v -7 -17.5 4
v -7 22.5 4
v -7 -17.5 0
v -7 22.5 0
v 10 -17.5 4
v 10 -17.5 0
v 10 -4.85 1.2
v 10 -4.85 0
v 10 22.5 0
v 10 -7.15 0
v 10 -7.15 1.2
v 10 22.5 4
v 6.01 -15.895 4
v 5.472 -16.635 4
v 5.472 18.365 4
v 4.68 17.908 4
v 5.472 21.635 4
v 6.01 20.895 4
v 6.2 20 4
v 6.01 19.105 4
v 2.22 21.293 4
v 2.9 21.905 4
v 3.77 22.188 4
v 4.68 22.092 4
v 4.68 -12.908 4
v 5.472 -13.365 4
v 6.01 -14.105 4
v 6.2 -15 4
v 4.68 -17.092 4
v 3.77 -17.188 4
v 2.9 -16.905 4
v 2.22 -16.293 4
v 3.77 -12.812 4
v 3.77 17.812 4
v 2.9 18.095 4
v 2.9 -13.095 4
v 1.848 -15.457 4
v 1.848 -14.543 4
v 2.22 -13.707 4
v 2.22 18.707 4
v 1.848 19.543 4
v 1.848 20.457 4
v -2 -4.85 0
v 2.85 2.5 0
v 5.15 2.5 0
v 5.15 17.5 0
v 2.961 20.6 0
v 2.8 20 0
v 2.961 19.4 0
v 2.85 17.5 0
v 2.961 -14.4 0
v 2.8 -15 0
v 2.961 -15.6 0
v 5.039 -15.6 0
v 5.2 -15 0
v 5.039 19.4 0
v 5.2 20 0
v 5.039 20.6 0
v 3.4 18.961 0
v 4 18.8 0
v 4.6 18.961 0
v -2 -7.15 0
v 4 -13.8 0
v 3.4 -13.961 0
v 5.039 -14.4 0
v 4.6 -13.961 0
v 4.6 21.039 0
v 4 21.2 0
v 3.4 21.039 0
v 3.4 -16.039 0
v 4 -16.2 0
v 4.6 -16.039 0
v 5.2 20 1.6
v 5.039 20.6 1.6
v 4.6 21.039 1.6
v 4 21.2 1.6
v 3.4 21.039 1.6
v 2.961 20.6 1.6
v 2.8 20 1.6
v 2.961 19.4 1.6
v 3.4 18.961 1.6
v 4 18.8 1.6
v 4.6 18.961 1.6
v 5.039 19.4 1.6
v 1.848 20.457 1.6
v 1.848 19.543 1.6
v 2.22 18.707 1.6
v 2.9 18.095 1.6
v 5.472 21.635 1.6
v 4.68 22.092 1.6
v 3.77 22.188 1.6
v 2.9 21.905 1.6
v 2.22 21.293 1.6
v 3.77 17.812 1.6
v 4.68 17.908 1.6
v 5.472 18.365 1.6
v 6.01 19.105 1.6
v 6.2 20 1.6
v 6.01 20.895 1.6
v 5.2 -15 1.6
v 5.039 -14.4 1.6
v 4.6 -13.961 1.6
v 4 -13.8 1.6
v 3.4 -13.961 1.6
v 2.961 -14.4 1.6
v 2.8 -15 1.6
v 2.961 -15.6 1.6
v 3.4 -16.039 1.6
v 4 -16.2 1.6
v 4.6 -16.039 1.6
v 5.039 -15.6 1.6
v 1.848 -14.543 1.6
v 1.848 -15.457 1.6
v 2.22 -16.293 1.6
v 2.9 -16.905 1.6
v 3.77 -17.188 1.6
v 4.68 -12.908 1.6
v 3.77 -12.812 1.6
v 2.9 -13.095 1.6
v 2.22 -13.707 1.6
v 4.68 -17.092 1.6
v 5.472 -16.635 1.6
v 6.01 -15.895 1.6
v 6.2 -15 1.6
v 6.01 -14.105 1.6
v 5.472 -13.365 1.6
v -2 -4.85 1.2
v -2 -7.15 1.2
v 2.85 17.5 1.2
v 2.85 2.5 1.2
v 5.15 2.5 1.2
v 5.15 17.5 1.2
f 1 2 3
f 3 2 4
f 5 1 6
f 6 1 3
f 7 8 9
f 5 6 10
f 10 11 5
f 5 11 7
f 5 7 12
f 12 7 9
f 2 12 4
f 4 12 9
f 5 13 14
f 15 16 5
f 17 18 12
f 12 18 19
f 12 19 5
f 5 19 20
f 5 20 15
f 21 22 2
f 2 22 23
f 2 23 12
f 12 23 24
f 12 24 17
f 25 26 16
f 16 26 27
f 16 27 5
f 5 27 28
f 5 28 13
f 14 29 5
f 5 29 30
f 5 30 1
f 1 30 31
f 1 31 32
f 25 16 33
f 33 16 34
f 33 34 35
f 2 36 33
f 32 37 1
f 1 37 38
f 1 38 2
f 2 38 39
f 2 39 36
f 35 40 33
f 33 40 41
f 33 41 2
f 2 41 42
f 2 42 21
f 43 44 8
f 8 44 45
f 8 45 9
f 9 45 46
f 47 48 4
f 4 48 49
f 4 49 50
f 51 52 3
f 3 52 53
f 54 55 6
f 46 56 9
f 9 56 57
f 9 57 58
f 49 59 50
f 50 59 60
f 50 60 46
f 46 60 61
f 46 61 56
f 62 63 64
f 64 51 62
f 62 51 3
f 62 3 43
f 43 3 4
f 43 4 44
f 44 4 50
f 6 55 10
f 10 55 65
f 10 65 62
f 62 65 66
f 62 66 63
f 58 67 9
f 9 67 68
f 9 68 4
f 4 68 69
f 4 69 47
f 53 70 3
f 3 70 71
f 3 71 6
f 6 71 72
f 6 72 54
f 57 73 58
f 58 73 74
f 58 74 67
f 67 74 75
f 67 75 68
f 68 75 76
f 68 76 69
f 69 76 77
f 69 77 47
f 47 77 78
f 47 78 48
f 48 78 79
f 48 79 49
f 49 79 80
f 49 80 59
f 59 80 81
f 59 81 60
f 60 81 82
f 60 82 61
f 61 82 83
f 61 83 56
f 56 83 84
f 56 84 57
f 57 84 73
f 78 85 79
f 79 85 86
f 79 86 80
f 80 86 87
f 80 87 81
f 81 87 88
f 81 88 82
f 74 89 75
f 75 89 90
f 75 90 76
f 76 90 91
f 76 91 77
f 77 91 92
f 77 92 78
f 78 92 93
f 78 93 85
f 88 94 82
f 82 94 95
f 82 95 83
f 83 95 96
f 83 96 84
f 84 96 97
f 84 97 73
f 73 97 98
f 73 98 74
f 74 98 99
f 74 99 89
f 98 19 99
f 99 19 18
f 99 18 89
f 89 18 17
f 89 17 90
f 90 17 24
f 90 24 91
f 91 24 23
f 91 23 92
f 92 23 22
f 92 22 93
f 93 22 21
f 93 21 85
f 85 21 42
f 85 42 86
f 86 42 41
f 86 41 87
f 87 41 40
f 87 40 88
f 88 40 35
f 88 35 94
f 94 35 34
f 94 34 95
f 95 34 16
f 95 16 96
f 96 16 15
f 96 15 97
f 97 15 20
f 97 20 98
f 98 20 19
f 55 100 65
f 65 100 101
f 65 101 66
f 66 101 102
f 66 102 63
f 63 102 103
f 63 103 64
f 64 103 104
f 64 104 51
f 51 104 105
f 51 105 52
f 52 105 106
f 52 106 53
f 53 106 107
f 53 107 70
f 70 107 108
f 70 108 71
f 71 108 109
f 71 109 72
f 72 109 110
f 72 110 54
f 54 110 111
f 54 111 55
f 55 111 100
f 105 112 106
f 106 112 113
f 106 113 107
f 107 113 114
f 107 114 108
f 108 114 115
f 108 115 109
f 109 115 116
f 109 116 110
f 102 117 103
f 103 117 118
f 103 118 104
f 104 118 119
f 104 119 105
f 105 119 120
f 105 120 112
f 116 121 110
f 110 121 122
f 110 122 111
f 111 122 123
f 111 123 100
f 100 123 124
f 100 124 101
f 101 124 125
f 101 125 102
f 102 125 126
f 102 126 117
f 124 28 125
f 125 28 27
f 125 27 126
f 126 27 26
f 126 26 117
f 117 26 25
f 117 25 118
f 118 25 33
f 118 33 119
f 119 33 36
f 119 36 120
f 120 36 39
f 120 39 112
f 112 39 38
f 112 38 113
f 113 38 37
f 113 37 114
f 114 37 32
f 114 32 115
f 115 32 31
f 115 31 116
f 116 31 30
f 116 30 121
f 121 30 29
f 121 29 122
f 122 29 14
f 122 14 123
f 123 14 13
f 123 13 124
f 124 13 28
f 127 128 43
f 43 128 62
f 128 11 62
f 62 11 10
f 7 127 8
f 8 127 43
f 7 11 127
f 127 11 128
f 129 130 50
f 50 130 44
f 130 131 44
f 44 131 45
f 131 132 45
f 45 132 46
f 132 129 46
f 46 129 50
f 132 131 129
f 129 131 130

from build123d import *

# Parameters (mm, degrees)
ESQUISSE1_W                                       = 17
ESQUISSE1_H                                       = 40
BOSS_EXTRU_1_DEPTH                                = 4
CHAMBRAGE_POUR_VIS_SIX_PANS_CREUX_M21_D           = 2.4
CHAMBRAGE_POUR_VIS_SIX_PANS_CREUX_M21_CBORE_D     = 4.4
CHAMBRAGE_POUR_VIS_SIX_PANS_CREUX_M21_CBORE_DEPTH = 2.4
ESQUISSE7_W                                       = 12
ESQUISSE7_H                                       = 2.3
ESQUISSE7_W_2                                     = 2.3
ESQUISSE7_H_2                                     = 15
ENL_V_MAT_EXTRU_1_DEPTH                           = 1.2


with BuildPart() as part:
    # Esquisse1 → Boss.-Extru.1 (new body)
    with BuildSketch(Plane.XY):
        with Locations((1.5, 2.5)):
            Rectangle(ESQUISSE1_W, ESQUISSE1_H)
    extrude(amount=BOSS_EXTRU_1_DEPTH)

    # Chambrage pour vis à six pans creux M21 (through all)
    with Locations(Plane.XY.offset(4)):
        with Locations((4, -15), (4, 20)):
            CounterBoreHole(CHAMBRAGE_POUR_VIS_SIX_PANS_CREUX_M21_D / 2, CHAMBRAGE_POUR_VIS_SIX_PANS_CREUX_M21_CBORE_D / 2, CHAMBRAGE_POUR_VIS_SIX_PANS_CREUX_M21_CBORE_DEPTH)

    # Esquisse7 → Enlèv. mat.-Extru.1 (cut)
    with BuildSketch(Plane(origin=(0, 0, 0), x_dir=(-1, 0, 0), z_dir=(0, 0, -1))):
        with Locations((-4, -6)):
            Rectangle(ESQUISSE7_W, ESQUISSE7_H)
        with Locations((-4, 10)):
            Rectangle(ESQUISSE7_W_2, ESQUISSE7_H_2)
    extrude(amount=-ENL_V_MAT_EXTRU_1_DEPTH, mode=Mode.SUBTRACT)


solid = part.part
